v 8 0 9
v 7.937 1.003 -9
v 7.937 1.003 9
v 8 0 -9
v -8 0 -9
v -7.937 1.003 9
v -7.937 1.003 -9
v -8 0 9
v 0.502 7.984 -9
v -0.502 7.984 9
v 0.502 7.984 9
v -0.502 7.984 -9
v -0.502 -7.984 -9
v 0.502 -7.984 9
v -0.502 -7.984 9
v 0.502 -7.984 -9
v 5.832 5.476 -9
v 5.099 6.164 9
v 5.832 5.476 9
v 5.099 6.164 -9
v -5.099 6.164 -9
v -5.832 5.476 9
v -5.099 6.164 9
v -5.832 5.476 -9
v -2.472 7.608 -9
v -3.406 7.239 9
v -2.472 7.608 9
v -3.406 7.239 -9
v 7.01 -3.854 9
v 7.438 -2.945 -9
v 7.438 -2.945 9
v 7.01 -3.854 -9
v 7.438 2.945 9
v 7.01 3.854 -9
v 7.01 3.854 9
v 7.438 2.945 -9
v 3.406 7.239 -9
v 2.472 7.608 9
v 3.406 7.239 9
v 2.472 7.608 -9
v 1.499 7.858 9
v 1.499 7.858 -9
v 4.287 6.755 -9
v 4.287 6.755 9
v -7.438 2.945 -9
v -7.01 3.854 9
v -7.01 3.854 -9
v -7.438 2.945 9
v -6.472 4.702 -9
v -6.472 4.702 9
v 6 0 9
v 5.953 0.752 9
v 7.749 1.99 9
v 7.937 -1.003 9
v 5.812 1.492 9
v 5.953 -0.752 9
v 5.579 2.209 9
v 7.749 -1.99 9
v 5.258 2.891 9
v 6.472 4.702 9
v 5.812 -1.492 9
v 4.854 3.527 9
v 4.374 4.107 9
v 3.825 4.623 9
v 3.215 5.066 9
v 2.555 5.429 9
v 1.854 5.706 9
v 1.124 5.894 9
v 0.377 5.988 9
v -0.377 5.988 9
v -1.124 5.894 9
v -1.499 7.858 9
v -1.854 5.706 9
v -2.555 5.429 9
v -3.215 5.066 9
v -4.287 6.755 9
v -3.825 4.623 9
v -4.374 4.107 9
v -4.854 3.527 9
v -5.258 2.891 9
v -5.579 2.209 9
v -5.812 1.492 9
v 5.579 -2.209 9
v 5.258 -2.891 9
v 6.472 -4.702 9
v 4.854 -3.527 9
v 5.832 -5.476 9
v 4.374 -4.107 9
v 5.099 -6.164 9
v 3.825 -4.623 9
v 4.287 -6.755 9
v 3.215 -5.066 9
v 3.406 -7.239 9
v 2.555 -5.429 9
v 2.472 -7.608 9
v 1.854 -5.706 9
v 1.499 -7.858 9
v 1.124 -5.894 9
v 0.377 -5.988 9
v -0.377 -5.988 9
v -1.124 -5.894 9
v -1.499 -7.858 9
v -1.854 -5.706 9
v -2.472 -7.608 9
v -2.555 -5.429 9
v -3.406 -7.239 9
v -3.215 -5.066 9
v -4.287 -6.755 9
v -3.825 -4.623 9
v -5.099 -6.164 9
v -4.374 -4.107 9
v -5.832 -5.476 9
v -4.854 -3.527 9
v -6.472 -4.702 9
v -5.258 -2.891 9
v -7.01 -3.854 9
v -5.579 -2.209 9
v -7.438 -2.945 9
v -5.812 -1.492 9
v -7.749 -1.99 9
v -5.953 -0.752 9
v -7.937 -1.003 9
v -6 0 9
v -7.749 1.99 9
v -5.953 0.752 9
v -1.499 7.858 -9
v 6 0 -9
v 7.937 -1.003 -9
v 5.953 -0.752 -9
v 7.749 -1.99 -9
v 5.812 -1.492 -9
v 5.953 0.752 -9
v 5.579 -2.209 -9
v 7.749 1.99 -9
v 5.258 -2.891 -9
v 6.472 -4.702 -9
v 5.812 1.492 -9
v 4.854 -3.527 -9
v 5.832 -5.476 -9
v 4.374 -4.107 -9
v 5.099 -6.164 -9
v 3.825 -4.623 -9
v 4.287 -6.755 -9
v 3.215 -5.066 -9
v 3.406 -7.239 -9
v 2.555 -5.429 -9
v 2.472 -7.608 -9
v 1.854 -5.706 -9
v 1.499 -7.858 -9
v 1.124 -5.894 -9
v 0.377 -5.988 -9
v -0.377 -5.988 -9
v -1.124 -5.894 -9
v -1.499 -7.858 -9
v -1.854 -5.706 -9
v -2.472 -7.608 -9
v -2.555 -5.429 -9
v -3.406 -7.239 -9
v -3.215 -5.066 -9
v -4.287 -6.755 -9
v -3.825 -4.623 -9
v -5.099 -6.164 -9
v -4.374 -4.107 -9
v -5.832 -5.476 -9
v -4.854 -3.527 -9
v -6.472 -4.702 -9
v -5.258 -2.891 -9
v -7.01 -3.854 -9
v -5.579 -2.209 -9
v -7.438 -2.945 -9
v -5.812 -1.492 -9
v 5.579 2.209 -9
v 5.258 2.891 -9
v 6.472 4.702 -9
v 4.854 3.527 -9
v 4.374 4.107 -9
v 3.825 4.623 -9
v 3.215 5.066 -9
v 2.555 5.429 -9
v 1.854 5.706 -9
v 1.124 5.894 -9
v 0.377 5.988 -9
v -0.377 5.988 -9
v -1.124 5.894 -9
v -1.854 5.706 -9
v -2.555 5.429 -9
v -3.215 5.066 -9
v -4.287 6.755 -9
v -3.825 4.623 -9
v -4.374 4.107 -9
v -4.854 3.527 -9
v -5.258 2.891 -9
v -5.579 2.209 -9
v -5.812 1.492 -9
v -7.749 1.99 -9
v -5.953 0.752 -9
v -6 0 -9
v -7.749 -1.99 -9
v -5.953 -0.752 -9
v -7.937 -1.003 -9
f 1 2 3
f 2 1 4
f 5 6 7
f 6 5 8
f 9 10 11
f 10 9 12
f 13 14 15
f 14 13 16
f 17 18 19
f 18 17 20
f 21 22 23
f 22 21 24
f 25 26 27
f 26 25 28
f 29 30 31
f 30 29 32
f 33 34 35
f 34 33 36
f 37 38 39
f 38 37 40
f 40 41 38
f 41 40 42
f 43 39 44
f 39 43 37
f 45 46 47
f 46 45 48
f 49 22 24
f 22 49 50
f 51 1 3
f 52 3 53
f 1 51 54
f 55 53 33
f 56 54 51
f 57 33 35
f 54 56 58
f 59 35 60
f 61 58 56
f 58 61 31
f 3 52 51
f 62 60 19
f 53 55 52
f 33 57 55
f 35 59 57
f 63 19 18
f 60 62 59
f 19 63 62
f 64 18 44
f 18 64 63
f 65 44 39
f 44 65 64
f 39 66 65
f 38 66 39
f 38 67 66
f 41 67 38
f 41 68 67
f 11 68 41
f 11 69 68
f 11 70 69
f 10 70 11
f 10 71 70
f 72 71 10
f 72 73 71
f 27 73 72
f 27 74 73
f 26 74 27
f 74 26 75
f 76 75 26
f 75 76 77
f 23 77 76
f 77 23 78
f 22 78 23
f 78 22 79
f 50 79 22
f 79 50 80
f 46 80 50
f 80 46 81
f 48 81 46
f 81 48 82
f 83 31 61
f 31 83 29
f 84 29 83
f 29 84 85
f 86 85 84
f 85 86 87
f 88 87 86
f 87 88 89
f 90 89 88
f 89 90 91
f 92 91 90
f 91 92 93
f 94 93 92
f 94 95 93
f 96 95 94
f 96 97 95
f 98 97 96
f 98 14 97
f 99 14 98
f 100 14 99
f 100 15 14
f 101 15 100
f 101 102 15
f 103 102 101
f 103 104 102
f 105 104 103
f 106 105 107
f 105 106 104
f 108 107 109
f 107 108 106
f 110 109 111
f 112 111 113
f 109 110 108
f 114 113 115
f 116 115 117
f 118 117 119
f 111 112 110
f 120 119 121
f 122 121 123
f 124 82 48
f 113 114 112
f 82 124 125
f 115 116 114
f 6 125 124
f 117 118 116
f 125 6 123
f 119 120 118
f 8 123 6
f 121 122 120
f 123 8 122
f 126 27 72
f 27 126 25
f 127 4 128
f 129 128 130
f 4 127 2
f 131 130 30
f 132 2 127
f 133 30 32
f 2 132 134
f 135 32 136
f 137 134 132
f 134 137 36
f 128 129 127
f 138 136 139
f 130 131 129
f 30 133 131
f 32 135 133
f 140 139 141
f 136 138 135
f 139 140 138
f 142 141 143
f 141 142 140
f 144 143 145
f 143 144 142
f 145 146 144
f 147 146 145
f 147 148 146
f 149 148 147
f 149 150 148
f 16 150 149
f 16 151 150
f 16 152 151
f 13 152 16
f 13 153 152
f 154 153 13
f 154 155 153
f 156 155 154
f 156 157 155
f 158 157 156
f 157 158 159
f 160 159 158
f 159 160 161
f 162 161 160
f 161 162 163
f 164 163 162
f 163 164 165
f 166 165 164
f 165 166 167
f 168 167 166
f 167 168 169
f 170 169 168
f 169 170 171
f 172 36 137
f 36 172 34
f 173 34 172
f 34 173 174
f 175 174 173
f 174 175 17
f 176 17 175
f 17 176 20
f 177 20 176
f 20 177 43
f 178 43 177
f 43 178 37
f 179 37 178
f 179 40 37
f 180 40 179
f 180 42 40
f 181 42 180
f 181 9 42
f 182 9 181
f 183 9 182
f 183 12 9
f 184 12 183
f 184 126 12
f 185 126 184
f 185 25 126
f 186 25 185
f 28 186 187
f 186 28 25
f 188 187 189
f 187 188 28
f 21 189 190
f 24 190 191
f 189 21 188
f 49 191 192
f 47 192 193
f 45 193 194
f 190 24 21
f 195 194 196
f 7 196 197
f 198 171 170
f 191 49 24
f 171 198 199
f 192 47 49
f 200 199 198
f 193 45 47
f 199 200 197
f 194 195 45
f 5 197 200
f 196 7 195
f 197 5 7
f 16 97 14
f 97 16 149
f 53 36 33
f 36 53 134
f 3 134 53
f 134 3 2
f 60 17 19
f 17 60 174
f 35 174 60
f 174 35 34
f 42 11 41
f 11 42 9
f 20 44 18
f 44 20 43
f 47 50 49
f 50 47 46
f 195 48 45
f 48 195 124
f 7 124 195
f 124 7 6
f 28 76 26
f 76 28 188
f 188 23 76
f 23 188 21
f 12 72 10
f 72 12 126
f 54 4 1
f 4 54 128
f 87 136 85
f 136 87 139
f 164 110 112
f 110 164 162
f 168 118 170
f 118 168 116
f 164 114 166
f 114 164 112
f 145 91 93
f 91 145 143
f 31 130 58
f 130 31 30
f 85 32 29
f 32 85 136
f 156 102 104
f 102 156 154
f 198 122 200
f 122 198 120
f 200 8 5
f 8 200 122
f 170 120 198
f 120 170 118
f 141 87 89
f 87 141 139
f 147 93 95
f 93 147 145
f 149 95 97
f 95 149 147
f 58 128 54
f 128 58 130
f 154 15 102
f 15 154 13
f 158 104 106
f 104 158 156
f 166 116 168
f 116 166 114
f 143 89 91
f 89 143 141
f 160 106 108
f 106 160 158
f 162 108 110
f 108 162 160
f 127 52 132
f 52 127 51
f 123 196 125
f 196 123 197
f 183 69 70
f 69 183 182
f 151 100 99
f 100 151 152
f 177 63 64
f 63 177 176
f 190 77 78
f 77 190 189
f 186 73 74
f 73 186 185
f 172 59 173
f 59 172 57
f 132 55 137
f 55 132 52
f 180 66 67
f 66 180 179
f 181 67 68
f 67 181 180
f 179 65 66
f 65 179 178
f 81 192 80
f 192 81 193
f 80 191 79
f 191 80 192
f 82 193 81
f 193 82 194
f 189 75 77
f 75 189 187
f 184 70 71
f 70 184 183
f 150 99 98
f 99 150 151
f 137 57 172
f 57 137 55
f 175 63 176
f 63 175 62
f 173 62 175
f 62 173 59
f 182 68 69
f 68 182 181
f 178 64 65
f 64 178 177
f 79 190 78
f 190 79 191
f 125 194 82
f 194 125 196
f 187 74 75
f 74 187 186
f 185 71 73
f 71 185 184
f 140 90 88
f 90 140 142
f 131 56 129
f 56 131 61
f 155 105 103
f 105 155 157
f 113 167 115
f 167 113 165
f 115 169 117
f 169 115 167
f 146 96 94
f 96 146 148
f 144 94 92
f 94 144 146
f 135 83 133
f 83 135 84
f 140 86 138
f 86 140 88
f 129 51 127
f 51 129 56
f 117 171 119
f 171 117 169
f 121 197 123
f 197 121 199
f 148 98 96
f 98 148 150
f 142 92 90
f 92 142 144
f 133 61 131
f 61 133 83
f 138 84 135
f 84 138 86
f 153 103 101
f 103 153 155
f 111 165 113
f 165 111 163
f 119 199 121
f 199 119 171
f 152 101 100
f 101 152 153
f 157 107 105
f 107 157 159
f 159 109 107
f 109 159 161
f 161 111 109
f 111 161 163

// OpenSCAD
$fn = 50;


difference() {
	union() {
		translate(v = [0, 0, -9.0000000000]) {
			cylinder(h = 18, r = 8.0000000000);
		}
	}
	union() {
		translate(v = [0, 0, -100.0000000000]) {
			cylinder(h = 200, r = 6);
		}
	}
}
